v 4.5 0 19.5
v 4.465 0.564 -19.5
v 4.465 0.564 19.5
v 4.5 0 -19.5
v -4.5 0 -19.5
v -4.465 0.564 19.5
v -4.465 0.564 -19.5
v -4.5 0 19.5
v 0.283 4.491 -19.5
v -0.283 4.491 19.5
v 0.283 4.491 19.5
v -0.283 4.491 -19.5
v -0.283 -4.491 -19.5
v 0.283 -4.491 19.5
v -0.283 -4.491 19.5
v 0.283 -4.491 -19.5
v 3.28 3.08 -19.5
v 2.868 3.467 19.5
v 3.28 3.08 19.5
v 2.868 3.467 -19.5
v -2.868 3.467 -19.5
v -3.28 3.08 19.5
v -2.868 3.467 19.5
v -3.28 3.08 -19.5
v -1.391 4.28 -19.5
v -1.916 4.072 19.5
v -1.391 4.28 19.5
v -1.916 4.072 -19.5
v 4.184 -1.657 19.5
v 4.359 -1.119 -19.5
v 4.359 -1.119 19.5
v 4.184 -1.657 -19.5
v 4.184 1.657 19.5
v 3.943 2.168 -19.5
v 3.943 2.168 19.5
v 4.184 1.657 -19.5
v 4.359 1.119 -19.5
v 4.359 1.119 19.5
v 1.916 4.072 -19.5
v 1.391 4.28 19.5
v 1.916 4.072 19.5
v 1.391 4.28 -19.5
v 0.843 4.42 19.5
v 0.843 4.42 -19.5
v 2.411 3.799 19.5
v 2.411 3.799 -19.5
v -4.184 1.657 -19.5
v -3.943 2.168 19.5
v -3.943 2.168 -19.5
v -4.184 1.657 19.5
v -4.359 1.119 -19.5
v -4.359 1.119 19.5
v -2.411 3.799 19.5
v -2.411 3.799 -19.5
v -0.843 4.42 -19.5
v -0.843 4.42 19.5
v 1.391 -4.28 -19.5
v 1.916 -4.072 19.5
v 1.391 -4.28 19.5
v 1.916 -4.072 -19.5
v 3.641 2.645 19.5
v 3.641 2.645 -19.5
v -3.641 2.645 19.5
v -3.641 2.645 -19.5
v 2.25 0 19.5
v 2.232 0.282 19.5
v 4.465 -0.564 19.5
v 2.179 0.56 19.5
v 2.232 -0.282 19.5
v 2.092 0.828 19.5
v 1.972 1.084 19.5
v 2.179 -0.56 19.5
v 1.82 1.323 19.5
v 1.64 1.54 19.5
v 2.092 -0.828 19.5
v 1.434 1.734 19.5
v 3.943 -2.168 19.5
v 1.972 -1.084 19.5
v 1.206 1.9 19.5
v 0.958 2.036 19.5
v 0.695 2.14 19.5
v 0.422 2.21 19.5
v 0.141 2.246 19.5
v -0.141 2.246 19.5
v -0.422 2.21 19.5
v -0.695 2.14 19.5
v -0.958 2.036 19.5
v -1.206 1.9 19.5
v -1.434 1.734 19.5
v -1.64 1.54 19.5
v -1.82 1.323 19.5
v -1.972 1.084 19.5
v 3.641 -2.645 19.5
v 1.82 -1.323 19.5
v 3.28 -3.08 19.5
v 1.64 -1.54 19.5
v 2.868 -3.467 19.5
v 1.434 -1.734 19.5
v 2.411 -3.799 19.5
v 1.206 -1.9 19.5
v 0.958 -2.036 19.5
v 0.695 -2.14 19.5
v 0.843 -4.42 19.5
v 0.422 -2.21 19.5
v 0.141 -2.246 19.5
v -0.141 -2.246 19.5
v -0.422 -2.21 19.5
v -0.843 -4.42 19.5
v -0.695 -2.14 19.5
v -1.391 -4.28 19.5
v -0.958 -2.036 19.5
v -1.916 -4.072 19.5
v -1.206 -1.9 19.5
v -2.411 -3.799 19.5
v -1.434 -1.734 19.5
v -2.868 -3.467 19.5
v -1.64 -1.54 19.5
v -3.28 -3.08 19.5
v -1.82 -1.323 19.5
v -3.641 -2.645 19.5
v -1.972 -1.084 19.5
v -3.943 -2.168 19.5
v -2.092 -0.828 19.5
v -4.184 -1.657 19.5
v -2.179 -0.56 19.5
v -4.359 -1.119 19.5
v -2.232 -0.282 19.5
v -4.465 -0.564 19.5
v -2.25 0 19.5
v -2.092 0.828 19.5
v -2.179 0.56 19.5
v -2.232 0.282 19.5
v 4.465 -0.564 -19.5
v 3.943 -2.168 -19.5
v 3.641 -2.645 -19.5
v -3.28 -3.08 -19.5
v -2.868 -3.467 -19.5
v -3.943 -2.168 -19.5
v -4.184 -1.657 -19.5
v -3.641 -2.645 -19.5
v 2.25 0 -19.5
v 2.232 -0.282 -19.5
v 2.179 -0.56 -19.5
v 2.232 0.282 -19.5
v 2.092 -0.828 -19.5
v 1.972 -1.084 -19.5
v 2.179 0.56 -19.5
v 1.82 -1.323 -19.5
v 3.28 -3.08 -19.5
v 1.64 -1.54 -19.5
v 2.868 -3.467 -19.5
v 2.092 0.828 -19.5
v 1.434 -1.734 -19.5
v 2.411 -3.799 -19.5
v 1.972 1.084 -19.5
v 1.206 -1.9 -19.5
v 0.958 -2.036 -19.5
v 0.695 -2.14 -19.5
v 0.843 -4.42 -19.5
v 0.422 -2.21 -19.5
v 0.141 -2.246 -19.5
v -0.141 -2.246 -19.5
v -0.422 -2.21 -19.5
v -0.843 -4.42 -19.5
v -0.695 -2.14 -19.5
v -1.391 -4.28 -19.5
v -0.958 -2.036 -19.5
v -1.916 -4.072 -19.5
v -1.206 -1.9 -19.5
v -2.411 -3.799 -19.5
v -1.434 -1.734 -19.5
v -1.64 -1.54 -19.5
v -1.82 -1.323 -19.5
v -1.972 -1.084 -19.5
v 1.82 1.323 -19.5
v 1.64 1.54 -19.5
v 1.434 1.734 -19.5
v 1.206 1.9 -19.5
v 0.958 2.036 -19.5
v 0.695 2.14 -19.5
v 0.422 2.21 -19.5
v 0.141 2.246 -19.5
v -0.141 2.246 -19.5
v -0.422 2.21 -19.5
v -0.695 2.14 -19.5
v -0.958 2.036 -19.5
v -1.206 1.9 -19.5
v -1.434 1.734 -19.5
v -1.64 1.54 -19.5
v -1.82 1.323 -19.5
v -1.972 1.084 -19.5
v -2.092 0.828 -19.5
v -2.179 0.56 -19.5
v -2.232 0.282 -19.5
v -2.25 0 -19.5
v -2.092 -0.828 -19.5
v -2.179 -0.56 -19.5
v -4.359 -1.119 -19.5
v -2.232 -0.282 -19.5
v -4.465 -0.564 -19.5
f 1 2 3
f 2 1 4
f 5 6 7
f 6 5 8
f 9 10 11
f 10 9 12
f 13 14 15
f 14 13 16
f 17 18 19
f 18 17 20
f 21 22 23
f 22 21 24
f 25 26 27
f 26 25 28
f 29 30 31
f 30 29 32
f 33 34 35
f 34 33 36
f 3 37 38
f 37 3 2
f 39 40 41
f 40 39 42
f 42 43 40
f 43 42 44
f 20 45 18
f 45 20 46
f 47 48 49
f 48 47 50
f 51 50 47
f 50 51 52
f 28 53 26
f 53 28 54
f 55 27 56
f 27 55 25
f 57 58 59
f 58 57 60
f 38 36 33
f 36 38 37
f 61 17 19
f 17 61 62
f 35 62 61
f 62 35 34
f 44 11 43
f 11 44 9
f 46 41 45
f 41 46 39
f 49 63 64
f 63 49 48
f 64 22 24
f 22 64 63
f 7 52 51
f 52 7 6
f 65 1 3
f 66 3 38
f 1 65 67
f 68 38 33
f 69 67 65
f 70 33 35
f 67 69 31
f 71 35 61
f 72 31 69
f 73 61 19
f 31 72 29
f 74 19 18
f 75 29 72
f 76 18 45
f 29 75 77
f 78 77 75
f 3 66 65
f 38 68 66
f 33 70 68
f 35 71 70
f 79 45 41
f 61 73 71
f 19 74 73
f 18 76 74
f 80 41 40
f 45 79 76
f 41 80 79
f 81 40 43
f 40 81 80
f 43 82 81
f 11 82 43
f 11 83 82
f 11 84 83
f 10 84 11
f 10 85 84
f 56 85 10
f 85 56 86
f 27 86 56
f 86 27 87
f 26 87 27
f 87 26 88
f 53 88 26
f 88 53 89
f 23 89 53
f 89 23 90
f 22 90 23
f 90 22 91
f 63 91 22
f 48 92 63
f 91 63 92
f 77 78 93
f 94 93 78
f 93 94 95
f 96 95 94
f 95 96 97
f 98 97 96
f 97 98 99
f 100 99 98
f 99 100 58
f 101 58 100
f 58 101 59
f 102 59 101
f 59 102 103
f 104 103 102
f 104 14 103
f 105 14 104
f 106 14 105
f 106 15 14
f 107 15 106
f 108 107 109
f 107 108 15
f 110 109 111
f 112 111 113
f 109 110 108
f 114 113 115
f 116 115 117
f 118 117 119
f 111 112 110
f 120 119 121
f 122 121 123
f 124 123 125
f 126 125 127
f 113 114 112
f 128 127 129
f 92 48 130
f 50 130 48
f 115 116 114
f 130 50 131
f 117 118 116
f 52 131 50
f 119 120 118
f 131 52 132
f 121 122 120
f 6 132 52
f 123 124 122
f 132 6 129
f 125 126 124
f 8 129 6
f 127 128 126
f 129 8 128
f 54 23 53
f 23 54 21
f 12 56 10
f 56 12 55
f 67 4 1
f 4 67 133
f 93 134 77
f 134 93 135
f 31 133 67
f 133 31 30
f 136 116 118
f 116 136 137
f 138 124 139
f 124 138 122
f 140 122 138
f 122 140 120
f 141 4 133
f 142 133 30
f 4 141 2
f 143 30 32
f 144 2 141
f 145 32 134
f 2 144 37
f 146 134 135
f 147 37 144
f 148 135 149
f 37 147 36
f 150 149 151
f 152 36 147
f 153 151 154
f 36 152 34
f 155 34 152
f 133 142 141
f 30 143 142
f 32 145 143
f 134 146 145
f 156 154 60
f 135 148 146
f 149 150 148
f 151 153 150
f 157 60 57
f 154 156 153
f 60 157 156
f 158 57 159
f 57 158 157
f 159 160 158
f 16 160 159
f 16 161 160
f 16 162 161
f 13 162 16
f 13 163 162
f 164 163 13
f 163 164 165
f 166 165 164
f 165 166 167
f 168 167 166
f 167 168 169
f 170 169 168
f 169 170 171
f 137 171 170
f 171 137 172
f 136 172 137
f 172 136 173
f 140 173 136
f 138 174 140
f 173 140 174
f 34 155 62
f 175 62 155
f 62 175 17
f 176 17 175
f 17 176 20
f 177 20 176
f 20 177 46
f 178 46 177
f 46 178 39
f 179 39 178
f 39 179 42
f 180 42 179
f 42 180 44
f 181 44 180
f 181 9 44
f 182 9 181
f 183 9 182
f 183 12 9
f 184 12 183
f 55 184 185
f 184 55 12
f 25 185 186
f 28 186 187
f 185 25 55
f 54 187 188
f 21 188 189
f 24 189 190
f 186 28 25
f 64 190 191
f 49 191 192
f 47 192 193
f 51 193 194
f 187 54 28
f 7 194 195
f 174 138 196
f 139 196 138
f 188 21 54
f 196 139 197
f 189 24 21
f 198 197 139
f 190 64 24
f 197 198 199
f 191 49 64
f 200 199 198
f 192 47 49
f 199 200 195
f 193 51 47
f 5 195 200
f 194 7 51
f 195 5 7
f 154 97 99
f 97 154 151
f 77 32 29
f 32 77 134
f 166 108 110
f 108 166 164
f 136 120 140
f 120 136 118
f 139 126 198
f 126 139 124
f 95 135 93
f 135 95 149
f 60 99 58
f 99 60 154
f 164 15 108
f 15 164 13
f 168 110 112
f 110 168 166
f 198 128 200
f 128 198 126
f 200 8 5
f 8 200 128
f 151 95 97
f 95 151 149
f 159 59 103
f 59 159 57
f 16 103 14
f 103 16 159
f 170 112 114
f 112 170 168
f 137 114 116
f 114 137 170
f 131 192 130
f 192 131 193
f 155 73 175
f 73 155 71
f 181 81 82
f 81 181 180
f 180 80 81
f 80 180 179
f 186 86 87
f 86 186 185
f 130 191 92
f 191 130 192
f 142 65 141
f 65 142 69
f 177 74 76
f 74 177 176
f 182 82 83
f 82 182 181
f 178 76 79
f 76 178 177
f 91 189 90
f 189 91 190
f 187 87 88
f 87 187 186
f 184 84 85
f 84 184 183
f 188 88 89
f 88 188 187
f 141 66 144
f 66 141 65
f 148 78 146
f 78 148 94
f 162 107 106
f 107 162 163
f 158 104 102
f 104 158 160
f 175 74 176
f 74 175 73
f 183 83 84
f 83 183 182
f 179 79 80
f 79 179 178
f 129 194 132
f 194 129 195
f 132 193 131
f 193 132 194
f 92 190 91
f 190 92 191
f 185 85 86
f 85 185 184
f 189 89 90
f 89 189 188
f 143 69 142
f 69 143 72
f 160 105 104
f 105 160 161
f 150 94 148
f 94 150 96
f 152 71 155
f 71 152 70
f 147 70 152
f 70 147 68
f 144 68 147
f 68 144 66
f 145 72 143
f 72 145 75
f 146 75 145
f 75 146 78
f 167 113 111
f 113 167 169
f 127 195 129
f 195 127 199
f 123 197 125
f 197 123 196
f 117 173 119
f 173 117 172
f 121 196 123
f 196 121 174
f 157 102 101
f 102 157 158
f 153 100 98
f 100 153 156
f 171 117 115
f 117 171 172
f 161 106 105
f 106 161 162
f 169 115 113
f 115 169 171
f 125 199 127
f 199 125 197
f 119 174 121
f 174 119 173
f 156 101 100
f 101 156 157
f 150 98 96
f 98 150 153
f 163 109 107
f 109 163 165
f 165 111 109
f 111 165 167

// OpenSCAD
$fn = 50;


difference() {
	union() {
		translate(v = [0, 0, -19.5000000000]) {
			cylinder(h = 39, r = 4.5000000000);
		}
	}
	union() {
		translate(v = [0, 0, -100.0000000000]) {
			cylinder(h = 200, r = 2.2500000000);
		}
	}
}
